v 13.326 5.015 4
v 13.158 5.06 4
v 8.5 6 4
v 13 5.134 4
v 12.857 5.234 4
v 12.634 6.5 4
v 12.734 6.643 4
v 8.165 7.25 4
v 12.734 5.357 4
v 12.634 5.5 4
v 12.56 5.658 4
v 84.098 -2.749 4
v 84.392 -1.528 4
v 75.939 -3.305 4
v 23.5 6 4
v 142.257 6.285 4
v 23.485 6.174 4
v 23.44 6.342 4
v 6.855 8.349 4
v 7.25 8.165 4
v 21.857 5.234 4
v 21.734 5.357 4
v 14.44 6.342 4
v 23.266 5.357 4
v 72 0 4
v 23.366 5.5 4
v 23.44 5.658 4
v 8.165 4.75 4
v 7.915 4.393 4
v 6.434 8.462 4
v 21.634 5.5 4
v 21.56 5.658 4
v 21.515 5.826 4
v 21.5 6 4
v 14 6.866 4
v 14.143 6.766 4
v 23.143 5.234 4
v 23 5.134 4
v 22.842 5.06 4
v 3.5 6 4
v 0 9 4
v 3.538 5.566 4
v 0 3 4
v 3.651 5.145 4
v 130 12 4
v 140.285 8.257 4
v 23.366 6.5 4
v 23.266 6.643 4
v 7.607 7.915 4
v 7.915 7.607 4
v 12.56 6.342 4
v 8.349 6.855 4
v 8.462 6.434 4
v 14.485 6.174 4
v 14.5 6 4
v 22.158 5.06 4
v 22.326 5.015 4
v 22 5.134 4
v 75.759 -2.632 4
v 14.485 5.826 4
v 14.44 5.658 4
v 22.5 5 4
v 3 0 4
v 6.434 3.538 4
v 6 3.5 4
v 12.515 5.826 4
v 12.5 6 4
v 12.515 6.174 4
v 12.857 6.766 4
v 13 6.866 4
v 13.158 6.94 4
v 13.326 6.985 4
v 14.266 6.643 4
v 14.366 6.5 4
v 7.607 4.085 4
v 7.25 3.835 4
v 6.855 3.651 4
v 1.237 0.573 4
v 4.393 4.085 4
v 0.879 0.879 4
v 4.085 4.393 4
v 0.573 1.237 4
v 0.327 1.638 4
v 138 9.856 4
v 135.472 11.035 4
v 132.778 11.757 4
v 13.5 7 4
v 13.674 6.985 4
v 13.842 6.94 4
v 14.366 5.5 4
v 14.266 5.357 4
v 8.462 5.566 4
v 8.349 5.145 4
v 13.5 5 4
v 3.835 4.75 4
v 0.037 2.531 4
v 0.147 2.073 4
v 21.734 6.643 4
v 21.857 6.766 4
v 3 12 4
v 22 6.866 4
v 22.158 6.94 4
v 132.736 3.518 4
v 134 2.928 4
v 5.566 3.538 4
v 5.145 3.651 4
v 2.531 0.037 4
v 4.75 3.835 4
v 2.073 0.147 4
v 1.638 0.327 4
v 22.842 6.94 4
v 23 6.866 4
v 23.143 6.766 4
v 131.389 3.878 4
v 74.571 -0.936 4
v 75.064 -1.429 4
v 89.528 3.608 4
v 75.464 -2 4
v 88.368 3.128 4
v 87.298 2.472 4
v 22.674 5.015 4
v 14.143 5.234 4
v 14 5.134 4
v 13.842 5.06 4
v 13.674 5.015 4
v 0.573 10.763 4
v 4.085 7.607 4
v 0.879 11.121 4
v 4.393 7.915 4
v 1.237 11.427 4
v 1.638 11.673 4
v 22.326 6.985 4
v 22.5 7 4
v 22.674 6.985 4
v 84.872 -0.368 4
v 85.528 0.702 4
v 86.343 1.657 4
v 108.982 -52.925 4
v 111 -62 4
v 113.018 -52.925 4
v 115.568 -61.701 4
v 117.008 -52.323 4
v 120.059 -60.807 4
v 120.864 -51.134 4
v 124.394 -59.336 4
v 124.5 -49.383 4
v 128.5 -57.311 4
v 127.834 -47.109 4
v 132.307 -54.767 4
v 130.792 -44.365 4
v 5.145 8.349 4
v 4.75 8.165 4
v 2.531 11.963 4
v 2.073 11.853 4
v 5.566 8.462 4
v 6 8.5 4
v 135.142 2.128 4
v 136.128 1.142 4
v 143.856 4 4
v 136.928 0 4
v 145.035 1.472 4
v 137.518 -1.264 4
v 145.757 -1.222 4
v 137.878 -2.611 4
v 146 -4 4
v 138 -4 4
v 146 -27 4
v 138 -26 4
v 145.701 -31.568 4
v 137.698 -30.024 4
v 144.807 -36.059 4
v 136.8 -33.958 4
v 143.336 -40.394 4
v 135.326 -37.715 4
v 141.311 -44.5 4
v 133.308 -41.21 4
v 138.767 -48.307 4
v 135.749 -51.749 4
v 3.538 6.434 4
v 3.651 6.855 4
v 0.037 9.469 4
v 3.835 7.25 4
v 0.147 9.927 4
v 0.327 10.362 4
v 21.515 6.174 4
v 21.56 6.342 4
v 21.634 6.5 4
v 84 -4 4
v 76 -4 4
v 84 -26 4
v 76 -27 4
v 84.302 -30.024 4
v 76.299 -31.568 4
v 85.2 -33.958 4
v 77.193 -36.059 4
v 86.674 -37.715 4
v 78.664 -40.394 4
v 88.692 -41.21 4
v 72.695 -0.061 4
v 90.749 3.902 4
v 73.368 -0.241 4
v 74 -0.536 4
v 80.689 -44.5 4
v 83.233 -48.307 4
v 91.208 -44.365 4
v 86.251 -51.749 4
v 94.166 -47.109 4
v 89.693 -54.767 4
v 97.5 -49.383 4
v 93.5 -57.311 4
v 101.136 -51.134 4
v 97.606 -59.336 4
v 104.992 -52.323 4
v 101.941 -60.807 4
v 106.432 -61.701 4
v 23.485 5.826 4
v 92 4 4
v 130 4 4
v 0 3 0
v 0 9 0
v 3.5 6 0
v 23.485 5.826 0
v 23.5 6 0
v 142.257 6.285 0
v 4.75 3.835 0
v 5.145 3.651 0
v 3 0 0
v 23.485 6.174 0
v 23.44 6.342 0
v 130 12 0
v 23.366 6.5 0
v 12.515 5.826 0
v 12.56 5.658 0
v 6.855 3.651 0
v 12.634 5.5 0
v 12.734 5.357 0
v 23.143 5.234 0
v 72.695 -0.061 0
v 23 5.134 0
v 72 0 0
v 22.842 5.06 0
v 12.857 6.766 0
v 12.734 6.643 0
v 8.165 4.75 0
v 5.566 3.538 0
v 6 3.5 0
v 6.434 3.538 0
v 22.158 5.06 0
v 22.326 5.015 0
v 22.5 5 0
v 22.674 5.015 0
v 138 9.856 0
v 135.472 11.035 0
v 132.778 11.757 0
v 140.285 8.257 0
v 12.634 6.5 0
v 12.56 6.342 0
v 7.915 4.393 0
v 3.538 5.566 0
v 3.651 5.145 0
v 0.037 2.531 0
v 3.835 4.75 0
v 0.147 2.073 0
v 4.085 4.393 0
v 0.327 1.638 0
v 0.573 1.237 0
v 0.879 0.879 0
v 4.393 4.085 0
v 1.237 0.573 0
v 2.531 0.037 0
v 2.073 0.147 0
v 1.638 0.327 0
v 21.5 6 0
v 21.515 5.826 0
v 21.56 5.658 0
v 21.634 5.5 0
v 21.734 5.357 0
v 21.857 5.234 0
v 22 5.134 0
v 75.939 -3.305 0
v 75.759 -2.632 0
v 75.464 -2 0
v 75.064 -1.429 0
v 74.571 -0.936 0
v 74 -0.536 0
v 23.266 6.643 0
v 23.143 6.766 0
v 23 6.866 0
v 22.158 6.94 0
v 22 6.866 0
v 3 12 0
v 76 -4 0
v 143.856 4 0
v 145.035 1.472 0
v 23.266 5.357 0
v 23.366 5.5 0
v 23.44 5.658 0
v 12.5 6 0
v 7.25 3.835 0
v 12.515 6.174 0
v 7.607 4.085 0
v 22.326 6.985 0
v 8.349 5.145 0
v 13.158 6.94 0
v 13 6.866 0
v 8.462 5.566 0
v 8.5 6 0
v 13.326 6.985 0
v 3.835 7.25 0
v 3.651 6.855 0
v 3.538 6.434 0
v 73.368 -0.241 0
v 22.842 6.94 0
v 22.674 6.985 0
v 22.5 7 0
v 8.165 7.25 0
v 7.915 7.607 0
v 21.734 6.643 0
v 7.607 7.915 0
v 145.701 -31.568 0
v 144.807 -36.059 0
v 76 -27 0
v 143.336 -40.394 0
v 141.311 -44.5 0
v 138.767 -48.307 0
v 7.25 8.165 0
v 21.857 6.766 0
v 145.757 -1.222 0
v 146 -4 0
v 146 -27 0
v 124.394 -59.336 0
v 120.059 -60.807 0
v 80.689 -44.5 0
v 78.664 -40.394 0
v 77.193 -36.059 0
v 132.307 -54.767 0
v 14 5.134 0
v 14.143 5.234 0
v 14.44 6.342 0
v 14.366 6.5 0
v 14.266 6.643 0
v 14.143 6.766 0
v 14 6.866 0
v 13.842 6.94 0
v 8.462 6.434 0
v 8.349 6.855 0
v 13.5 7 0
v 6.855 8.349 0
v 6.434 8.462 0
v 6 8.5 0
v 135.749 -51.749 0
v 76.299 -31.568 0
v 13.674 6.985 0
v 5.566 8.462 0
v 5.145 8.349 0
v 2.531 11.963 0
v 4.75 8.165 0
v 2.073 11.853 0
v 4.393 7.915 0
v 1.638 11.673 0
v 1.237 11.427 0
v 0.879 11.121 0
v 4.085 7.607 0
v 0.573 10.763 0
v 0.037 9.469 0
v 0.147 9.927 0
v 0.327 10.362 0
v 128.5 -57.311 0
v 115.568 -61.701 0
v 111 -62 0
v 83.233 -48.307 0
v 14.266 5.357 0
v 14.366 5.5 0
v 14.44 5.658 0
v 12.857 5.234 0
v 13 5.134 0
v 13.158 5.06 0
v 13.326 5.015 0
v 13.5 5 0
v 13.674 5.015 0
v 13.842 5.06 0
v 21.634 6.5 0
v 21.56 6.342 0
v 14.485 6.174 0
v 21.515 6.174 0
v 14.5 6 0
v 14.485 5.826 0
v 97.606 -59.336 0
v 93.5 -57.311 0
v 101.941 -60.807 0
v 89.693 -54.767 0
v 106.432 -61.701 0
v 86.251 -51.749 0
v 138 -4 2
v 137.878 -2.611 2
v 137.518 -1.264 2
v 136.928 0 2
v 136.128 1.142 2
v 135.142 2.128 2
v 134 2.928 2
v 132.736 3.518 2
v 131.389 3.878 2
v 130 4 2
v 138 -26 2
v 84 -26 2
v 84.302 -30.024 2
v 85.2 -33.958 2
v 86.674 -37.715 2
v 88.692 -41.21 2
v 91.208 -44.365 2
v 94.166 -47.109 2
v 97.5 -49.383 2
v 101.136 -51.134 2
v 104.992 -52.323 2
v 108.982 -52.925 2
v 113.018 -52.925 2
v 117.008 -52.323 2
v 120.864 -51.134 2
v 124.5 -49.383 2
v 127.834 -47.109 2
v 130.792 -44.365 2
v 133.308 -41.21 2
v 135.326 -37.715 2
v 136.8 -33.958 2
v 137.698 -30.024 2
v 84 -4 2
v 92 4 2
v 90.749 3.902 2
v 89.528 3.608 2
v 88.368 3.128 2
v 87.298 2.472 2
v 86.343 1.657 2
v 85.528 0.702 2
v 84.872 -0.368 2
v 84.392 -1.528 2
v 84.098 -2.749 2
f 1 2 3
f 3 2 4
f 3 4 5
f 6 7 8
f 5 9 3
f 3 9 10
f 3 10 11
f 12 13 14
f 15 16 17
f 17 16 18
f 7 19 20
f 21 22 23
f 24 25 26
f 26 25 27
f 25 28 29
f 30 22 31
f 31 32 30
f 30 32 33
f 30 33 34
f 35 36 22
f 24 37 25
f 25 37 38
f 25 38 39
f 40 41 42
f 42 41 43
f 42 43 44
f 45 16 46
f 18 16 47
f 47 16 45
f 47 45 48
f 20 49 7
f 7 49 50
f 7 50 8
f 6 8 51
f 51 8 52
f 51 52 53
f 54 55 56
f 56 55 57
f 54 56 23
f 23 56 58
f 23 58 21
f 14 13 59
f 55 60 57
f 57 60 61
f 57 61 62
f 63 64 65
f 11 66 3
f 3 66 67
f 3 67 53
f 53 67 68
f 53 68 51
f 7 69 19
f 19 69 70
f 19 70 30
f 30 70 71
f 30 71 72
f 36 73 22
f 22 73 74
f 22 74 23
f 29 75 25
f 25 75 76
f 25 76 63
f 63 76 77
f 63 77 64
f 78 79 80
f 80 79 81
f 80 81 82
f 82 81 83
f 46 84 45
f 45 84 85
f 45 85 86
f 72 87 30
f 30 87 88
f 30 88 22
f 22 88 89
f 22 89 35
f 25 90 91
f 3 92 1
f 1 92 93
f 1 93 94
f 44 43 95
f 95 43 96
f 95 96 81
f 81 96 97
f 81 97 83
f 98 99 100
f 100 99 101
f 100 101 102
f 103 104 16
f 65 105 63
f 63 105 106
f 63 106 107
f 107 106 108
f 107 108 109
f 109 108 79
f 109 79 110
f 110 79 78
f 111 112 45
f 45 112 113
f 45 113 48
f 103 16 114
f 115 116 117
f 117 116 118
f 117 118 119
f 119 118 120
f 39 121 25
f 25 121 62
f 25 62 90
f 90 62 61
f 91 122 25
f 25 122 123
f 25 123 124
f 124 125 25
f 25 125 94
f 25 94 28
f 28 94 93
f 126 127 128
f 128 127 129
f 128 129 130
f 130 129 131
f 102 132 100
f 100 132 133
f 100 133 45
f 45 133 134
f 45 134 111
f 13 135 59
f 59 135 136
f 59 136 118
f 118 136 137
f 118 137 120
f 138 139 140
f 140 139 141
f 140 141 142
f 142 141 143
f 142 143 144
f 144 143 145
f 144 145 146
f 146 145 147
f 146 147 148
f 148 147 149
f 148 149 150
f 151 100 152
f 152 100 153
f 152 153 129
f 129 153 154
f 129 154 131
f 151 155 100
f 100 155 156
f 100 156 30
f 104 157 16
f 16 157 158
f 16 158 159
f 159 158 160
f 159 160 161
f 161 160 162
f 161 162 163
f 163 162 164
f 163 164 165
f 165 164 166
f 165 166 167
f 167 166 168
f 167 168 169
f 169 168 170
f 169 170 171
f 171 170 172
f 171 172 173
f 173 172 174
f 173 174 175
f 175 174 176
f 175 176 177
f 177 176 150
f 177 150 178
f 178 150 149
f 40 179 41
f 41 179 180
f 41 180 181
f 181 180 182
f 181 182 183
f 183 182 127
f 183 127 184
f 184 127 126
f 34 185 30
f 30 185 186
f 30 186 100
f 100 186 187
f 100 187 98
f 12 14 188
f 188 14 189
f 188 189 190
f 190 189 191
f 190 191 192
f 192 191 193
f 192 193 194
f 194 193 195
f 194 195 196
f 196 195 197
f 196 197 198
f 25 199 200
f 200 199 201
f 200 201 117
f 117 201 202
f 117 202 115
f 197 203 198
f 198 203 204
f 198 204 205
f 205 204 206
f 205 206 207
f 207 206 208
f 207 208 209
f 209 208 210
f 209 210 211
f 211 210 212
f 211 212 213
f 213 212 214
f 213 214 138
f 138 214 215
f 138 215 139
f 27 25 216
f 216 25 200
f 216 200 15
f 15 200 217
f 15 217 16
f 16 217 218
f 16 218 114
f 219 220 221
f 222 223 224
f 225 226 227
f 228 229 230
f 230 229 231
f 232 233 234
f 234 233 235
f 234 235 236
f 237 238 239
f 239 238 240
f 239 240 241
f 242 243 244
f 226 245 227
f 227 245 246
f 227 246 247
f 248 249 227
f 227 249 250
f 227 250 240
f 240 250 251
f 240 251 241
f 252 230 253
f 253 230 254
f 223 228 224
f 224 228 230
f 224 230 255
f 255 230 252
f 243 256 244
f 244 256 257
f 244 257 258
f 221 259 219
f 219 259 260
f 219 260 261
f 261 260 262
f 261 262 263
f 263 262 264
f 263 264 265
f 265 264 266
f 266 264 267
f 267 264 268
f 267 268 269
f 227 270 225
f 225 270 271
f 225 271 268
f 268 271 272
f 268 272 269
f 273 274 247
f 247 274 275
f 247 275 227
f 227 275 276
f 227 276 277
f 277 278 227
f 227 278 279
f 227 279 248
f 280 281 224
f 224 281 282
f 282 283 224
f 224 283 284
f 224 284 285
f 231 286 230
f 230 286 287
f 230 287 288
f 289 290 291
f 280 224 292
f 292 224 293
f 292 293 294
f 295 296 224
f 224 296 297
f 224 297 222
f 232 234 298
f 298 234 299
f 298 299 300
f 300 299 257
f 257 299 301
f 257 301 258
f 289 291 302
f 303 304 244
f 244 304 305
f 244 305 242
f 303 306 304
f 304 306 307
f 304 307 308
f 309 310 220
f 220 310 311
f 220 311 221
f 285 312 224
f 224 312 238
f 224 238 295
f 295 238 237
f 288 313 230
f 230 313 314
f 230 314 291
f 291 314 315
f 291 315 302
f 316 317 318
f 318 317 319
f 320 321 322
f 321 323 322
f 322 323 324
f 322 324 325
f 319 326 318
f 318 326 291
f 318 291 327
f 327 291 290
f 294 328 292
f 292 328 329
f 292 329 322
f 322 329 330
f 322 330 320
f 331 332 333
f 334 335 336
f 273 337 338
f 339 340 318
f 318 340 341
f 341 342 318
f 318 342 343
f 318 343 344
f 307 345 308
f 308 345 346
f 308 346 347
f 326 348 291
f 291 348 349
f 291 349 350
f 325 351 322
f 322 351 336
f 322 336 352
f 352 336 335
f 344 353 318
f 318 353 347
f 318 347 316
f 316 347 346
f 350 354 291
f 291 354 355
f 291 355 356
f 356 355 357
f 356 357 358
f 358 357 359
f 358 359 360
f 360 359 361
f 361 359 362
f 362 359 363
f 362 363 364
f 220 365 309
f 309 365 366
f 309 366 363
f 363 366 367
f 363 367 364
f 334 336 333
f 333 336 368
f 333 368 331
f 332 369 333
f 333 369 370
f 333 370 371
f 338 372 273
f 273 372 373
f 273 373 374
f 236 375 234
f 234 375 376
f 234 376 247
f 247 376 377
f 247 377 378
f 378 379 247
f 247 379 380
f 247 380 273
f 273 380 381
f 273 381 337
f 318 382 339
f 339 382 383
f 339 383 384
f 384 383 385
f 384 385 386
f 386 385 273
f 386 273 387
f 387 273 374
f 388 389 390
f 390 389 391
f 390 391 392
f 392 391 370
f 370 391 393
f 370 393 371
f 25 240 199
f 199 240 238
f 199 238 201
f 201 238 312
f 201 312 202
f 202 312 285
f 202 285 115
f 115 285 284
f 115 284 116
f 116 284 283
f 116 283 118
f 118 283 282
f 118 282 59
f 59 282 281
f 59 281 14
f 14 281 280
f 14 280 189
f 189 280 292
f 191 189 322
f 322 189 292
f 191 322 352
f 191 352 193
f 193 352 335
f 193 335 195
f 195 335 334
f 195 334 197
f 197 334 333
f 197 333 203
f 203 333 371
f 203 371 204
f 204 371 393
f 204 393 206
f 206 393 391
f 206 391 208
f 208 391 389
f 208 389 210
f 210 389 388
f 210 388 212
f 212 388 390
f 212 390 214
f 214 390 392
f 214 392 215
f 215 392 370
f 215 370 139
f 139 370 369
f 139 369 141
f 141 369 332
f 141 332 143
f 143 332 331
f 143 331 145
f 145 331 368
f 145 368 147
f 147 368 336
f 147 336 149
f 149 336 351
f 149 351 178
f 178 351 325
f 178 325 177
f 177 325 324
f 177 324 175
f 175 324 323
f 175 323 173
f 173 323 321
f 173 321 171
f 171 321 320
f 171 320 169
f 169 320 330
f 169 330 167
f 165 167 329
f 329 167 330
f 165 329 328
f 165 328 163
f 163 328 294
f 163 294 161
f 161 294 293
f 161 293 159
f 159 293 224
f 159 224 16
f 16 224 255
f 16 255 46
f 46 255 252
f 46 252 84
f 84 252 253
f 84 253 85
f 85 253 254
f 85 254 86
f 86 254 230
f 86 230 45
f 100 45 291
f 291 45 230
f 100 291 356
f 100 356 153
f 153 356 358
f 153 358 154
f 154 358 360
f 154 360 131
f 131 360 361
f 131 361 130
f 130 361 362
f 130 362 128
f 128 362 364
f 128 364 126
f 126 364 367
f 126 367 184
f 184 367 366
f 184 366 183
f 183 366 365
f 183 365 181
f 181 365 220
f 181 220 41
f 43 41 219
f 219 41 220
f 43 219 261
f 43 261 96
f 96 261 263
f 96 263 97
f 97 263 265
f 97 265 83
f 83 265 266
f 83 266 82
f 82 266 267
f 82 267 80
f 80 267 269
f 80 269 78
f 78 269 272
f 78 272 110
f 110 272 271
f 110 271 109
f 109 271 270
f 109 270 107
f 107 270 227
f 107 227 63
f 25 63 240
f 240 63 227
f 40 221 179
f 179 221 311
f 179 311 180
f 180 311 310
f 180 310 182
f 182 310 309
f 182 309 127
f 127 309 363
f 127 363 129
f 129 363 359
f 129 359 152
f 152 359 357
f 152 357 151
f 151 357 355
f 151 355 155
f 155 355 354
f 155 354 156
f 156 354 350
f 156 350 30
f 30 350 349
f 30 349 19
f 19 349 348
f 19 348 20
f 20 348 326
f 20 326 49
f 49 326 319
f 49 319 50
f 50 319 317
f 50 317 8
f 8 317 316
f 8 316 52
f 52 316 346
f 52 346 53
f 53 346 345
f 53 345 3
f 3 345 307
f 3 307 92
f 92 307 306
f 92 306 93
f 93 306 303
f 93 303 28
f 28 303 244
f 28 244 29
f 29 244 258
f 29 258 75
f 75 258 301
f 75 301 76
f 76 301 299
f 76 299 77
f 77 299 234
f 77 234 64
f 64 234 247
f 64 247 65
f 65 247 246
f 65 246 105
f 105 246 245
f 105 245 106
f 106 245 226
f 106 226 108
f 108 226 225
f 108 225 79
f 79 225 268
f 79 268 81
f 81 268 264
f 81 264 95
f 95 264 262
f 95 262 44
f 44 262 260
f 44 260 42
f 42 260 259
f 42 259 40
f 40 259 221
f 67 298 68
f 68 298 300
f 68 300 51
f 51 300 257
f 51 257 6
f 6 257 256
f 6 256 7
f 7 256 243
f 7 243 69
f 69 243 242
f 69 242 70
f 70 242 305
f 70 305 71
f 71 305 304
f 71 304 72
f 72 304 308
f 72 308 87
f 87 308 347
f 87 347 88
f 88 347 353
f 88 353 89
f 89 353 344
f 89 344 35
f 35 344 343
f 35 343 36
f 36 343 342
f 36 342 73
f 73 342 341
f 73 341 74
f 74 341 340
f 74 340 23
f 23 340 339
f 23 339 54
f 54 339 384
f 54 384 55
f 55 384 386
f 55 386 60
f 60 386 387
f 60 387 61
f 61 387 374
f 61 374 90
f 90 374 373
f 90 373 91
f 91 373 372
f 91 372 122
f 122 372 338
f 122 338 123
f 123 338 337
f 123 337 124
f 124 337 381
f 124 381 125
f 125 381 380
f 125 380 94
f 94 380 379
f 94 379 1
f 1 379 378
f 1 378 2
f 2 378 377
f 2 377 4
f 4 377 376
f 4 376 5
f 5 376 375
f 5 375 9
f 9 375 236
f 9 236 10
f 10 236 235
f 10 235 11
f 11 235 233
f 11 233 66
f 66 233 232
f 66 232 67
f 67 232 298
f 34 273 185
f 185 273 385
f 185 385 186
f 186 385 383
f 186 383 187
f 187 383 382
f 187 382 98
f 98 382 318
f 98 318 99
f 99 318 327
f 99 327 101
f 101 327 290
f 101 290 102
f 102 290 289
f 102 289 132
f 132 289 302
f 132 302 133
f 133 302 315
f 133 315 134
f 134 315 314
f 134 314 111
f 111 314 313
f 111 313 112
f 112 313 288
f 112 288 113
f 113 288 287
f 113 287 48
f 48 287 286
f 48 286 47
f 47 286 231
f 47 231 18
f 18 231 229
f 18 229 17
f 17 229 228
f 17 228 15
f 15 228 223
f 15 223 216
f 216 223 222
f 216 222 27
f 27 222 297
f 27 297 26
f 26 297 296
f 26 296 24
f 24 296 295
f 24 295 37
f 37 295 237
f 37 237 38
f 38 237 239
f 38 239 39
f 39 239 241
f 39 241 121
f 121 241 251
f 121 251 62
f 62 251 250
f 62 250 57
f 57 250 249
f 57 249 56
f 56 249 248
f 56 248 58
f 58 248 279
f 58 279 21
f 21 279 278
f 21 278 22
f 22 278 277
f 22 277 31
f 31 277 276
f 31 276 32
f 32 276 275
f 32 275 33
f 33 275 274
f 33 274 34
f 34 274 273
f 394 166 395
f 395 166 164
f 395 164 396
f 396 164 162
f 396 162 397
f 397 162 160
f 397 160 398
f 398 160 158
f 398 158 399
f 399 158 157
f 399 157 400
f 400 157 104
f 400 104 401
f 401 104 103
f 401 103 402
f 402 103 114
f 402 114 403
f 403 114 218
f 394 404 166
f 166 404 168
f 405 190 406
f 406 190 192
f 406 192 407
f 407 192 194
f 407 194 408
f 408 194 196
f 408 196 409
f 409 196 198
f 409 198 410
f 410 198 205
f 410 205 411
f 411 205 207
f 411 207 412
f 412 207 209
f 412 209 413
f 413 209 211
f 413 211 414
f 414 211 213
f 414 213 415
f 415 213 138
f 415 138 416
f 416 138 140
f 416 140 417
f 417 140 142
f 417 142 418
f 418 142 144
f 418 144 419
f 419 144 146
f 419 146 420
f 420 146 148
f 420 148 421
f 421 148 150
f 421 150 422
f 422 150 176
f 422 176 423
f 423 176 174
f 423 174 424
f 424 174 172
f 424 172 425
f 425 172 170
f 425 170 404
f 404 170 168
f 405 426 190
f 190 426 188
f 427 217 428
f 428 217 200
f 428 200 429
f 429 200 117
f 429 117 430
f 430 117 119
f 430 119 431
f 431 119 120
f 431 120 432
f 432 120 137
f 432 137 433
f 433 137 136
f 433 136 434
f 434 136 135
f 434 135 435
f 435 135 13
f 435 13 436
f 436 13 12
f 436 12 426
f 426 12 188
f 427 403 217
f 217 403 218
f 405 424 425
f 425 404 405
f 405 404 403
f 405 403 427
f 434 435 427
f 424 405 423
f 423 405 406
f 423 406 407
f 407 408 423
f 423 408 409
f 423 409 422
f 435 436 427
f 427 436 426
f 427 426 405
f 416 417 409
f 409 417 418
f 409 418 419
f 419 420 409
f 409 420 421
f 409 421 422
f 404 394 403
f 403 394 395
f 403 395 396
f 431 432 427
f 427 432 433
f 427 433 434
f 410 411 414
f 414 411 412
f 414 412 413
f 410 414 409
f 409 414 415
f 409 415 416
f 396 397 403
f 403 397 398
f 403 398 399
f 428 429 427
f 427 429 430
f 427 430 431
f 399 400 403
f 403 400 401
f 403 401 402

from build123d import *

# Parameters (mm, degrees)
SKETCH_1_R          = 2.5
SKETCH_1_R_2        = 1
EXTRUDE_1_DEPTH     = 4
CUT_EXTRUDE_1_DEPTH = 2


with BuildPart() as part:
    # Эскиз1 → Бобышка-Вытянуть1 (new body)
    with BuildSketch(Plane.XY):
        with BuildLine():
            Line((3, 0), (72, 0))
            ThreePointArc((72, 0), (74.828427125, -1.171572875), (76, -4))
            Line((76, -4), (76, -27))
            ThreePointArc((76, -27), (111, -62), (146, -27))
            Line((146, -27), (146, -4))
            ThreePointArc((146, -4), (141.313708499, 7.313708499), (130, 12))
            Line((130, 12), (3, 12))
            ThreePointArc((3, 12), (0.878679656, 11.121320344), (0, 9))
            Line((0, 9), (0, 3))
            ThreePointArc((0, 3), (0.878679656, 0.878679656), (3, 0))
        make_face()
        with Locations((6, 6)):
            Circle(SKETCH_1_R, mode=Mode.SUBTRACT)
        with Locations((13.5, 6)):
            Circle(SKETCH_1_R_2, mode=Mode.SUBTRACT)
        with Locations((22.5, 6)):
            Circle(SKETCH_1_R_2, mode=Mode.SUBTRACT)
    extrude(amount=EXTRUDE_1_DEPTH)

    # Эскиз2 → Вырез-Вытянуть1 (cut)
    with BuildSketch(Plane.XY.offset(4)):
        with BuildLine():
            Line((92, 4), (130, 4))
            ThreePointArc((130, 4), (135.656854249, 1.656854249), (138, -4))
            Line((138, -4), (138, -26))
            ThreePointArc((138, -26), (111, -53), (84, -26))
            Line((84, -26), (84, -4))
            ThreePointArc((84, -4), (86.343145751, 1.656854249), (92, 4))
        make_face()
    extrude(amount=-CUT_EXTRUDE_1_DEPTH, mode=Mode.SUBTRACT)


solid = part.part
